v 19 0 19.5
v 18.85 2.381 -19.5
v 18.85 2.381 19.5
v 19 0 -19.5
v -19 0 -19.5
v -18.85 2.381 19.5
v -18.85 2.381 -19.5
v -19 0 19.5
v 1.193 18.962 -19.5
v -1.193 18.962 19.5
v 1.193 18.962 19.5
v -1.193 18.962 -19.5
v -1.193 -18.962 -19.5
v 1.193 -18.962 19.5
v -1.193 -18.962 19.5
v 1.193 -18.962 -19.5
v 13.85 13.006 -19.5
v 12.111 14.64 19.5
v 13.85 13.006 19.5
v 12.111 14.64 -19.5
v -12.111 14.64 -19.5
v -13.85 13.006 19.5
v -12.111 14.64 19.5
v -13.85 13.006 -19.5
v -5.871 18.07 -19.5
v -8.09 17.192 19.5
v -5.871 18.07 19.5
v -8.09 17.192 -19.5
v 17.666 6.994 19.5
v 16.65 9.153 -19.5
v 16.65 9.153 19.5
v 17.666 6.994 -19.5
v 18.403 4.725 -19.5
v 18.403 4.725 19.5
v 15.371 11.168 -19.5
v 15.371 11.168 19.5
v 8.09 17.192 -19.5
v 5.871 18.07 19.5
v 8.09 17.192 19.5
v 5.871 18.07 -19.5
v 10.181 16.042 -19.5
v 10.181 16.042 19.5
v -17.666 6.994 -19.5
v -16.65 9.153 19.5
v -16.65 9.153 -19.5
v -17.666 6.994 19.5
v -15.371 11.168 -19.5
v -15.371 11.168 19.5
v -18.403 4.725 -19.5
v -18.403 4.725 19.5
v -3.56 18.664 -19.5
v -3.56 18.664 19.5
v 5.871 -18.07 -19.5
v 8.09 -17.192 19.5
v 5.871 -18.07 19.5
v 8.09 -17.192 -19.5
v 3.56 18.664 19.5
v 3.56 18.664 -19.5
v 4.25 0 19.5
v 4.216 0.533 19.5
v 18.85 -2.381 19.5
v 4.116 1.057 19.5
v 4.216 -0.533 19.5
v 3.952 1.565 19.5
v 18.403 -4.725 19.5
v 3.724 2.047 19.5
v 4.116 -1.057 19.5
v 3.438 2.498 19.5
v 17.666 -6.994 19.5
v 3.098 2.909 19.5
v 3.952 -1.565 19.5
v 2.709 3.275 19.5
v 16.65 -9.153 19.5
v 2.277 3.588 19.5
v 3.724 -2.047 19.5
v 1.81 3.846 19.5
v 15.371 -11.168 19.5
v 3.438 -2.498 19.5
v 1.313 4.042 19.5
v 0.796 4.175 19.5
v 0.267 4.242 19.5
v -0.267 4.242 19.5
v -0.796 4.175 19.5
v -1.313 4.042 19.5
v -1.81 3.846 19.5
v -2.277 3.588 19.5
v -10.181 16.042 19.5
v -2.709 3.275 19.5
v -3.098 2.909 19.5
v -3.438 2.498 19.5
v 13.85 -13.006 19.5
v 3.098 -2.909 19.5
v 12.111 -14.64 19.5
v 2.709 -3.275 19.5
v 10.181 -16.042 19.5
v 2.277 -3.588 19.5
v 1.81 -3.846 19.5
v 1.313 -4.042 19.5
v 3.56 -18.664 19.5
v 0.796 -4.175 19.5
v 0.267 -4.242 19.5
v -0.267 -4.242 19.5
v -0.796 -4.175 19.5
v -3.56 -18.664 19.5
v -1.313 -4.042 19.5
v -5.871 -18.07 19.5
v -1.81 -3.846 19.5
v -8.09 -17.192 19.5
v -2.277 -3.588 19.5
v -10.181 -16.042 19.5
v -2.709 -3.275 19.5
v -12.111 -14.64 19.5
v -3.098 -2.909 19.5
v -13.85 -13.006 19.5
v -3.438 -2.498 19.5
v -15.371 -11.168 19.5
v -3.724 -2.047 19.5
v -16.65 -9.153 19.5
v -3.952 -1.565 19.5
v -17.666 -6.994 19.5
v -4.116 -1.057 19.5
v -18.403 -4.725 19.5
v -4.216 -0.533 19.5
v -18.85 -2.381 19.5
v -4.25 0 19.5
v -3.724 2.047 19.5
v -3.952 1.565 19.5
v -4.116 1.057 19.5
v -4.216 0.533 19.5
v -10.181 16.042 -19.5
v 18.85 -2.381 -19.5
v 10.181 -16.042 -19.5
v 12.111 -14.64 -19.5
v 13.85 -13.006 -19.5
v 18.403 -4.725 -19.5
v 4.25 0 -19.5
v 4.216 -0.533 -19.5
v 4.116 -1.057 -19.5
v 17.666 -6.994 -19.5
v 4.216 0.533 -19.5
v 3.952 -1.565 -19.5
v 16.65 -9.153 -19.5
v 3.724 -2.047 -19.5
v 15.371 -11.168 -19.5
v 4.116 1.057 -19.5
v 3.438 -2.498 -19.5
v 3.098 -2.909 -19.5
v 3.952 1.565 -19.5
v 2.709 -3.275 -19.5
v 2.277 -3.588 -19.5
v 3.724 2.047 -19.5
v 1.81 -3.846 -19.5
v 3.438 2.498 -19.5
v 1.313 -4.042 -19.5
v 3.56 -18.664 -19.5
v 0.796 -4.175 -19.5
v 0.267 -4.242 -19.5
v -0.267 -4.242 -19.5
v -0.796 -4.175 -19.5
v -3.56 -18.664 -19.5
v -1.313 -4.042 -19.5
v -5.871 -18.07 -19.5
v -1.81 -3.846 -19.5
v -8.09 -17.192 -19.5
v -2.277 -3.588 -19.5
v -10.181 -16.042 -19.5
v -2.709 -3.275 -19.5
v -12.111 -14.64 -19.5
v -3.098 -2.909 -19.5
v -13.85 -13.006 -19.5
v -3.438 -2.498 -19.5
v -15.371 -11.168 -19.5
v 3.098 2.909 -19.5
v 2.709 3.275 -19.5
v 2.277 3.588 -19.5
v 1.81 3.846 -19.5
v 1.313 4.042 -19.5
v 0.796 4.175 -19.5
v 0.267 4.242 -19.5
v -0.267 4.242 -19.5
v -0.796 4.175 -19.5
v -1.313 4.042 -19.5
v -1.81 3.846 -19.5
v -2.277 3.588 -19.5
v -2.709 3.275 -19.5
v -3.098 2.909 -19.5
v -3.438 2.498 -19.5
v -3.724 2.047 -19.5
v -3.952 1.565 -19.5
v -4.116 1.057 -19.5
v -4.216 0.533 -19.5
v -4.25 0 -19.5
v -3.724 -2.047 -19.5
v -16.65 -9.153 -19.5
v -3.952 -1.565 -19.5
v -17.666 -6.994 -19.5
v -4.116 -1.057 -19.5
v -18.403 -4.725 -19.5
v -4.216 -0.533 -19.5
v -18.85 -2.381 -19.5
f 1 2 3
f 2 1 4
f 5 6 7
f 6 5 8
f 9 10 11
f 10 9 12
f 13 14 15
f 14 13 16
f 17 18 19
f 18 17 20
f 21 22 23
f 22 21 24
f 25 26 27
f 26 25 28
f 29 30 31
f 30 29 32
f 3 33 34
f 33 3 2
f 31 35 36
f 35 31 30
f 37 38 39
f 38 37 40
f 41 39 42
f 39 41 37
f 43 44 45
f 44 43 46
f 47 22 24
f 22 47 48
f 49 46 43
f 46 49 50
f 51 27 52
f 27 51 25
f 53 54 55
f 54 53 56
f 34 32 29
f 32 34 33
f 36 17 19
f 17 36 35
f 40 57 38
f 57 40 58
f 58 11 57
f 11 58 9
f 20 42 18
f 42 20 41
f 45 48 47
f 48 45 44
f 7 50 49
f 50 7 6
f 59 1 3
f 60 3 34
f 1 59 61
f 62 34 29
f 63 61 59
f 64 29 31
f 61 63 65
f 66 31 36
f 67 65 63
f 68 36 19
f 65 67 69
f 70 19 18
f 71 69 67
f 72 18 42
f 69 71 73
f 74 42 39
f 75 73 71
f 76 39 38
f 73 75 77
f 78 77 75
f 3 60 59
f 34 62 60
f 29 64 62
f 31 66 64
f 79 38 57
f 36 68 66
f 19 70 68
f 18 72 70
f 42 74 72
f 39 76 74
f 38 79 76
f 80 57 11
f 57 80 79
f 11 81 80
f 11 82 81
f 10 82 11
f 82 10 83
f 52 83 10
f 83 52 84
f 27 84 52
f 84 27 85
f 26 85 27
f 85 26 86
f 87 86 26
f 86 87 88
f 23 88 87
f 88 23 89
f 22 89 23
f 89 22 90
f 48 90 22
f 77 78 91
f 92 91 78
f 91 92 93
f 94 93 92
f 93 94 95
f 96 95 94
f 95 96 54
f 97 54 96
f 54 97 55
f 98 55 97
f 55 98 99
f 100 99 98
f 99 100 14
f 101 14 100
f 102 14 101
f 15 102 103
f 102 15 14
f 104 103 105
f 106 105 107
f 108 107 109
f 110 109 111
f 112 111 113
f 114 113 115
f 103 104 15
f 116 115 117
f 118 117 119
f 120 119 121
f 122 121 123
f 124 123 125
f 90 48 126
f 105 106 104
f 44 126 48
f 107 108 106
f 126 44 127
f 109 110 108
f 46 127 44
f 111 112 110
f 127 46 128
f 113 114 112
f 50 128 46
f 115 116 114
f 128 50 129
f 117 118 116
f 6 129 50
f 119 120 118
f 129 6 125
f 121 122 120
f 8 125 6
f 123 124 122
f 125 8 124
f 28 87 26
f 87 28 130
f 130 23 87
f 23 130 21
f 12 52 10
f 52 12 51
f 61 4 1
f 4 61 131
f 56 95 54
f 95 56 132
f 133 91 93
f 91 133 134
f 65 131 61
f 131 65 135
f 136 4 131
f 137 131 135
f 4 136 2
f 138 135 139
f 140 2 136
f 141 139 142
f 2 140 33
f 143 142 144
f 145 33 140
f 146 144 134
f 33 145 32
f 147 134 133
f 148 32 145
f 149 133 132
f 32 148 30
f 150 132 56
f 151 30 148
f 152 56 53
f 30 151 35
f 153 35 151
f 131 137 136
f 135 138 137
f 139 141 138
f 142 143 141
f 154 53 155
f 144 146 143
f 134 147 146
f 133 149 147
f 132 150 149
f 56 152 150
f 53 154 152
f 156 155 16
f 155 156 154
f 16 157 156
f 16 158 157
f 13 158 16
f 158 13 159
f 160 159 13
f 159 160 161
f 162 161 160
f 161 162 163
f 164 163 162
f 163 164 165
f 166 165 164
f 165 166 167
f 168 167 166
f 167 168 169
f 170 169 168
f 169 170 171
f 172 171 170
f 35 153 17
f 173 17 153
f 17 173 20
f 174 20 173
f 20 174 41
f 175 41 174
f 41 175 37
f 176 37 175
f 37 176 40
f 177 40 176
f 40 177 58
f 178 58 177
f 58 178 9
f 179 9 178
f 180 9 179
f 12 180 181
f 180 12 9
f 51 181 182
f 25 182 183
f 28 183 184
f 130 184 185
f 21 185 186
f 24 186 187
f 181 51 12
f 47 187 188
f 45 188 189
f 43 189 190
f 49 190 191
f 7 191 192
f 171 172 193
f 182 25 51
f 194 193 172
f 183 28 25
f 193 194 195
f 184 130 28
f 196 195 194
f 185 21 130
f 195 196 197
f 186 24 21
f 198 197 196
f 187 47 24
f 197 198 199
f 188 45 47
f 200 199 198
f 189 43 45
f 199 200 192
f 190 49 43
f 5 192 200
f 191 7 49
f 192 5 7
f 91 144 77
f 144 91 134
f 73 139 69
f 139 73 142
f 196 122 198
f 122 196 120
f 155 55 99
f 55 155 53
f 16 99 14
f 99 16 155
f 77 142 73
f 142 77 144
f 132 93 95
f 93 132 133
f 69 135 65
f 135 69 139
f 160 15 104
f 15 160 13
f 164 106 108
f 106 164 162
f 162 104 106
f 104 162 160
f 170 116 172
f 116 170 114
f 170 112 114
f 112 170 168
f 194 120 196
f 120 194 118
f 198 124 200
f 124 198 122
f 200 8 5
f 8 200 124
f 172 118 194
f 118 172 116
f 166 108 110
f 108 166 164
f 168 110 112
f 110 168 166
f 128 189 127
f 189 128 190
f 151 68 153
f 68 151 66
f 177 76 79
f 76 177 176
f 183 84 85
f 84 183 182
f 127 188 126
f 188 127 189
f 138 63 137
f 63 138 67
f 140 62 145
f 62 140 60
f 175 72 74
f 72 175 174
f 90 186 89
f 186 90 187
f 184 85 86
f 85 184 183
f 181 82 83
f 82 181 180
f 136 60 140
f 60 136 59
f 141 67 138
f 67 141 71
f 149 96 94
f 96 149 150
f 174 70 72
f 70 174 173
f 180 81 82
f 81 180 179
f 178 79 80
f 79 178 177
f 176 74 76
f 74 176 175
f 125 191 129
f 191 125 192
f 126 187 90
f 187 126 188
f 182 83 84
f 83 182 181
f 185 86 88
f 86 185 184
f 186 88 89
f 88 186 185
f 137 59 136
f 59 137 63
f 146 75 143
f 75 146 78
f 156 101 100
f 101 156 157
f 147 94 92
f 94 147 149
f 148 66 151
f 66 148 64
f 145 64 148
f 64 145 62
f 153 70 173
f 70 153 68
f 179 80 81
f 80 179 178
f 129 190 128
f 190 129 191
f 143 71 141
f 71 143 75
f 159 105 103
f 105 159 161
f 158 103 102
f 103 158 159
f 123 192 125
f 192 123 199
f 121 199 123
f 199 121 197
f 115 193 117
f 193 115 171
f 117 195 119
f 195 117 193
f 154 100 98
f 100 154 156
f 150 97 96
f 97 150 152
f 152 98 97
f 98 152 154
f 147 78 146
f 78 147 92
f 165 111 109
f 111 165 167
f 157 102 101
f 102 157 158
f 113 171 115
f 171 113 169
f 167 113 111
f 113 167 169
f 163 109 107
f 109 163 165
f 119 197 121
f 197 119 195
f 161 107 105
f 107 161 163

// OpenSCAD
$fn = 50;


difference() {
	union() {
		translate(v = [0, 0, -19.5000000000]) {
			cylinder(h = 39, r = 19.0000000000);
		}
	}
	union() {
		translate(v = [0, 0, -100.0000000000]) {
			cylinder(h = 200, r = 4.2500000000);
		}
	}
}
